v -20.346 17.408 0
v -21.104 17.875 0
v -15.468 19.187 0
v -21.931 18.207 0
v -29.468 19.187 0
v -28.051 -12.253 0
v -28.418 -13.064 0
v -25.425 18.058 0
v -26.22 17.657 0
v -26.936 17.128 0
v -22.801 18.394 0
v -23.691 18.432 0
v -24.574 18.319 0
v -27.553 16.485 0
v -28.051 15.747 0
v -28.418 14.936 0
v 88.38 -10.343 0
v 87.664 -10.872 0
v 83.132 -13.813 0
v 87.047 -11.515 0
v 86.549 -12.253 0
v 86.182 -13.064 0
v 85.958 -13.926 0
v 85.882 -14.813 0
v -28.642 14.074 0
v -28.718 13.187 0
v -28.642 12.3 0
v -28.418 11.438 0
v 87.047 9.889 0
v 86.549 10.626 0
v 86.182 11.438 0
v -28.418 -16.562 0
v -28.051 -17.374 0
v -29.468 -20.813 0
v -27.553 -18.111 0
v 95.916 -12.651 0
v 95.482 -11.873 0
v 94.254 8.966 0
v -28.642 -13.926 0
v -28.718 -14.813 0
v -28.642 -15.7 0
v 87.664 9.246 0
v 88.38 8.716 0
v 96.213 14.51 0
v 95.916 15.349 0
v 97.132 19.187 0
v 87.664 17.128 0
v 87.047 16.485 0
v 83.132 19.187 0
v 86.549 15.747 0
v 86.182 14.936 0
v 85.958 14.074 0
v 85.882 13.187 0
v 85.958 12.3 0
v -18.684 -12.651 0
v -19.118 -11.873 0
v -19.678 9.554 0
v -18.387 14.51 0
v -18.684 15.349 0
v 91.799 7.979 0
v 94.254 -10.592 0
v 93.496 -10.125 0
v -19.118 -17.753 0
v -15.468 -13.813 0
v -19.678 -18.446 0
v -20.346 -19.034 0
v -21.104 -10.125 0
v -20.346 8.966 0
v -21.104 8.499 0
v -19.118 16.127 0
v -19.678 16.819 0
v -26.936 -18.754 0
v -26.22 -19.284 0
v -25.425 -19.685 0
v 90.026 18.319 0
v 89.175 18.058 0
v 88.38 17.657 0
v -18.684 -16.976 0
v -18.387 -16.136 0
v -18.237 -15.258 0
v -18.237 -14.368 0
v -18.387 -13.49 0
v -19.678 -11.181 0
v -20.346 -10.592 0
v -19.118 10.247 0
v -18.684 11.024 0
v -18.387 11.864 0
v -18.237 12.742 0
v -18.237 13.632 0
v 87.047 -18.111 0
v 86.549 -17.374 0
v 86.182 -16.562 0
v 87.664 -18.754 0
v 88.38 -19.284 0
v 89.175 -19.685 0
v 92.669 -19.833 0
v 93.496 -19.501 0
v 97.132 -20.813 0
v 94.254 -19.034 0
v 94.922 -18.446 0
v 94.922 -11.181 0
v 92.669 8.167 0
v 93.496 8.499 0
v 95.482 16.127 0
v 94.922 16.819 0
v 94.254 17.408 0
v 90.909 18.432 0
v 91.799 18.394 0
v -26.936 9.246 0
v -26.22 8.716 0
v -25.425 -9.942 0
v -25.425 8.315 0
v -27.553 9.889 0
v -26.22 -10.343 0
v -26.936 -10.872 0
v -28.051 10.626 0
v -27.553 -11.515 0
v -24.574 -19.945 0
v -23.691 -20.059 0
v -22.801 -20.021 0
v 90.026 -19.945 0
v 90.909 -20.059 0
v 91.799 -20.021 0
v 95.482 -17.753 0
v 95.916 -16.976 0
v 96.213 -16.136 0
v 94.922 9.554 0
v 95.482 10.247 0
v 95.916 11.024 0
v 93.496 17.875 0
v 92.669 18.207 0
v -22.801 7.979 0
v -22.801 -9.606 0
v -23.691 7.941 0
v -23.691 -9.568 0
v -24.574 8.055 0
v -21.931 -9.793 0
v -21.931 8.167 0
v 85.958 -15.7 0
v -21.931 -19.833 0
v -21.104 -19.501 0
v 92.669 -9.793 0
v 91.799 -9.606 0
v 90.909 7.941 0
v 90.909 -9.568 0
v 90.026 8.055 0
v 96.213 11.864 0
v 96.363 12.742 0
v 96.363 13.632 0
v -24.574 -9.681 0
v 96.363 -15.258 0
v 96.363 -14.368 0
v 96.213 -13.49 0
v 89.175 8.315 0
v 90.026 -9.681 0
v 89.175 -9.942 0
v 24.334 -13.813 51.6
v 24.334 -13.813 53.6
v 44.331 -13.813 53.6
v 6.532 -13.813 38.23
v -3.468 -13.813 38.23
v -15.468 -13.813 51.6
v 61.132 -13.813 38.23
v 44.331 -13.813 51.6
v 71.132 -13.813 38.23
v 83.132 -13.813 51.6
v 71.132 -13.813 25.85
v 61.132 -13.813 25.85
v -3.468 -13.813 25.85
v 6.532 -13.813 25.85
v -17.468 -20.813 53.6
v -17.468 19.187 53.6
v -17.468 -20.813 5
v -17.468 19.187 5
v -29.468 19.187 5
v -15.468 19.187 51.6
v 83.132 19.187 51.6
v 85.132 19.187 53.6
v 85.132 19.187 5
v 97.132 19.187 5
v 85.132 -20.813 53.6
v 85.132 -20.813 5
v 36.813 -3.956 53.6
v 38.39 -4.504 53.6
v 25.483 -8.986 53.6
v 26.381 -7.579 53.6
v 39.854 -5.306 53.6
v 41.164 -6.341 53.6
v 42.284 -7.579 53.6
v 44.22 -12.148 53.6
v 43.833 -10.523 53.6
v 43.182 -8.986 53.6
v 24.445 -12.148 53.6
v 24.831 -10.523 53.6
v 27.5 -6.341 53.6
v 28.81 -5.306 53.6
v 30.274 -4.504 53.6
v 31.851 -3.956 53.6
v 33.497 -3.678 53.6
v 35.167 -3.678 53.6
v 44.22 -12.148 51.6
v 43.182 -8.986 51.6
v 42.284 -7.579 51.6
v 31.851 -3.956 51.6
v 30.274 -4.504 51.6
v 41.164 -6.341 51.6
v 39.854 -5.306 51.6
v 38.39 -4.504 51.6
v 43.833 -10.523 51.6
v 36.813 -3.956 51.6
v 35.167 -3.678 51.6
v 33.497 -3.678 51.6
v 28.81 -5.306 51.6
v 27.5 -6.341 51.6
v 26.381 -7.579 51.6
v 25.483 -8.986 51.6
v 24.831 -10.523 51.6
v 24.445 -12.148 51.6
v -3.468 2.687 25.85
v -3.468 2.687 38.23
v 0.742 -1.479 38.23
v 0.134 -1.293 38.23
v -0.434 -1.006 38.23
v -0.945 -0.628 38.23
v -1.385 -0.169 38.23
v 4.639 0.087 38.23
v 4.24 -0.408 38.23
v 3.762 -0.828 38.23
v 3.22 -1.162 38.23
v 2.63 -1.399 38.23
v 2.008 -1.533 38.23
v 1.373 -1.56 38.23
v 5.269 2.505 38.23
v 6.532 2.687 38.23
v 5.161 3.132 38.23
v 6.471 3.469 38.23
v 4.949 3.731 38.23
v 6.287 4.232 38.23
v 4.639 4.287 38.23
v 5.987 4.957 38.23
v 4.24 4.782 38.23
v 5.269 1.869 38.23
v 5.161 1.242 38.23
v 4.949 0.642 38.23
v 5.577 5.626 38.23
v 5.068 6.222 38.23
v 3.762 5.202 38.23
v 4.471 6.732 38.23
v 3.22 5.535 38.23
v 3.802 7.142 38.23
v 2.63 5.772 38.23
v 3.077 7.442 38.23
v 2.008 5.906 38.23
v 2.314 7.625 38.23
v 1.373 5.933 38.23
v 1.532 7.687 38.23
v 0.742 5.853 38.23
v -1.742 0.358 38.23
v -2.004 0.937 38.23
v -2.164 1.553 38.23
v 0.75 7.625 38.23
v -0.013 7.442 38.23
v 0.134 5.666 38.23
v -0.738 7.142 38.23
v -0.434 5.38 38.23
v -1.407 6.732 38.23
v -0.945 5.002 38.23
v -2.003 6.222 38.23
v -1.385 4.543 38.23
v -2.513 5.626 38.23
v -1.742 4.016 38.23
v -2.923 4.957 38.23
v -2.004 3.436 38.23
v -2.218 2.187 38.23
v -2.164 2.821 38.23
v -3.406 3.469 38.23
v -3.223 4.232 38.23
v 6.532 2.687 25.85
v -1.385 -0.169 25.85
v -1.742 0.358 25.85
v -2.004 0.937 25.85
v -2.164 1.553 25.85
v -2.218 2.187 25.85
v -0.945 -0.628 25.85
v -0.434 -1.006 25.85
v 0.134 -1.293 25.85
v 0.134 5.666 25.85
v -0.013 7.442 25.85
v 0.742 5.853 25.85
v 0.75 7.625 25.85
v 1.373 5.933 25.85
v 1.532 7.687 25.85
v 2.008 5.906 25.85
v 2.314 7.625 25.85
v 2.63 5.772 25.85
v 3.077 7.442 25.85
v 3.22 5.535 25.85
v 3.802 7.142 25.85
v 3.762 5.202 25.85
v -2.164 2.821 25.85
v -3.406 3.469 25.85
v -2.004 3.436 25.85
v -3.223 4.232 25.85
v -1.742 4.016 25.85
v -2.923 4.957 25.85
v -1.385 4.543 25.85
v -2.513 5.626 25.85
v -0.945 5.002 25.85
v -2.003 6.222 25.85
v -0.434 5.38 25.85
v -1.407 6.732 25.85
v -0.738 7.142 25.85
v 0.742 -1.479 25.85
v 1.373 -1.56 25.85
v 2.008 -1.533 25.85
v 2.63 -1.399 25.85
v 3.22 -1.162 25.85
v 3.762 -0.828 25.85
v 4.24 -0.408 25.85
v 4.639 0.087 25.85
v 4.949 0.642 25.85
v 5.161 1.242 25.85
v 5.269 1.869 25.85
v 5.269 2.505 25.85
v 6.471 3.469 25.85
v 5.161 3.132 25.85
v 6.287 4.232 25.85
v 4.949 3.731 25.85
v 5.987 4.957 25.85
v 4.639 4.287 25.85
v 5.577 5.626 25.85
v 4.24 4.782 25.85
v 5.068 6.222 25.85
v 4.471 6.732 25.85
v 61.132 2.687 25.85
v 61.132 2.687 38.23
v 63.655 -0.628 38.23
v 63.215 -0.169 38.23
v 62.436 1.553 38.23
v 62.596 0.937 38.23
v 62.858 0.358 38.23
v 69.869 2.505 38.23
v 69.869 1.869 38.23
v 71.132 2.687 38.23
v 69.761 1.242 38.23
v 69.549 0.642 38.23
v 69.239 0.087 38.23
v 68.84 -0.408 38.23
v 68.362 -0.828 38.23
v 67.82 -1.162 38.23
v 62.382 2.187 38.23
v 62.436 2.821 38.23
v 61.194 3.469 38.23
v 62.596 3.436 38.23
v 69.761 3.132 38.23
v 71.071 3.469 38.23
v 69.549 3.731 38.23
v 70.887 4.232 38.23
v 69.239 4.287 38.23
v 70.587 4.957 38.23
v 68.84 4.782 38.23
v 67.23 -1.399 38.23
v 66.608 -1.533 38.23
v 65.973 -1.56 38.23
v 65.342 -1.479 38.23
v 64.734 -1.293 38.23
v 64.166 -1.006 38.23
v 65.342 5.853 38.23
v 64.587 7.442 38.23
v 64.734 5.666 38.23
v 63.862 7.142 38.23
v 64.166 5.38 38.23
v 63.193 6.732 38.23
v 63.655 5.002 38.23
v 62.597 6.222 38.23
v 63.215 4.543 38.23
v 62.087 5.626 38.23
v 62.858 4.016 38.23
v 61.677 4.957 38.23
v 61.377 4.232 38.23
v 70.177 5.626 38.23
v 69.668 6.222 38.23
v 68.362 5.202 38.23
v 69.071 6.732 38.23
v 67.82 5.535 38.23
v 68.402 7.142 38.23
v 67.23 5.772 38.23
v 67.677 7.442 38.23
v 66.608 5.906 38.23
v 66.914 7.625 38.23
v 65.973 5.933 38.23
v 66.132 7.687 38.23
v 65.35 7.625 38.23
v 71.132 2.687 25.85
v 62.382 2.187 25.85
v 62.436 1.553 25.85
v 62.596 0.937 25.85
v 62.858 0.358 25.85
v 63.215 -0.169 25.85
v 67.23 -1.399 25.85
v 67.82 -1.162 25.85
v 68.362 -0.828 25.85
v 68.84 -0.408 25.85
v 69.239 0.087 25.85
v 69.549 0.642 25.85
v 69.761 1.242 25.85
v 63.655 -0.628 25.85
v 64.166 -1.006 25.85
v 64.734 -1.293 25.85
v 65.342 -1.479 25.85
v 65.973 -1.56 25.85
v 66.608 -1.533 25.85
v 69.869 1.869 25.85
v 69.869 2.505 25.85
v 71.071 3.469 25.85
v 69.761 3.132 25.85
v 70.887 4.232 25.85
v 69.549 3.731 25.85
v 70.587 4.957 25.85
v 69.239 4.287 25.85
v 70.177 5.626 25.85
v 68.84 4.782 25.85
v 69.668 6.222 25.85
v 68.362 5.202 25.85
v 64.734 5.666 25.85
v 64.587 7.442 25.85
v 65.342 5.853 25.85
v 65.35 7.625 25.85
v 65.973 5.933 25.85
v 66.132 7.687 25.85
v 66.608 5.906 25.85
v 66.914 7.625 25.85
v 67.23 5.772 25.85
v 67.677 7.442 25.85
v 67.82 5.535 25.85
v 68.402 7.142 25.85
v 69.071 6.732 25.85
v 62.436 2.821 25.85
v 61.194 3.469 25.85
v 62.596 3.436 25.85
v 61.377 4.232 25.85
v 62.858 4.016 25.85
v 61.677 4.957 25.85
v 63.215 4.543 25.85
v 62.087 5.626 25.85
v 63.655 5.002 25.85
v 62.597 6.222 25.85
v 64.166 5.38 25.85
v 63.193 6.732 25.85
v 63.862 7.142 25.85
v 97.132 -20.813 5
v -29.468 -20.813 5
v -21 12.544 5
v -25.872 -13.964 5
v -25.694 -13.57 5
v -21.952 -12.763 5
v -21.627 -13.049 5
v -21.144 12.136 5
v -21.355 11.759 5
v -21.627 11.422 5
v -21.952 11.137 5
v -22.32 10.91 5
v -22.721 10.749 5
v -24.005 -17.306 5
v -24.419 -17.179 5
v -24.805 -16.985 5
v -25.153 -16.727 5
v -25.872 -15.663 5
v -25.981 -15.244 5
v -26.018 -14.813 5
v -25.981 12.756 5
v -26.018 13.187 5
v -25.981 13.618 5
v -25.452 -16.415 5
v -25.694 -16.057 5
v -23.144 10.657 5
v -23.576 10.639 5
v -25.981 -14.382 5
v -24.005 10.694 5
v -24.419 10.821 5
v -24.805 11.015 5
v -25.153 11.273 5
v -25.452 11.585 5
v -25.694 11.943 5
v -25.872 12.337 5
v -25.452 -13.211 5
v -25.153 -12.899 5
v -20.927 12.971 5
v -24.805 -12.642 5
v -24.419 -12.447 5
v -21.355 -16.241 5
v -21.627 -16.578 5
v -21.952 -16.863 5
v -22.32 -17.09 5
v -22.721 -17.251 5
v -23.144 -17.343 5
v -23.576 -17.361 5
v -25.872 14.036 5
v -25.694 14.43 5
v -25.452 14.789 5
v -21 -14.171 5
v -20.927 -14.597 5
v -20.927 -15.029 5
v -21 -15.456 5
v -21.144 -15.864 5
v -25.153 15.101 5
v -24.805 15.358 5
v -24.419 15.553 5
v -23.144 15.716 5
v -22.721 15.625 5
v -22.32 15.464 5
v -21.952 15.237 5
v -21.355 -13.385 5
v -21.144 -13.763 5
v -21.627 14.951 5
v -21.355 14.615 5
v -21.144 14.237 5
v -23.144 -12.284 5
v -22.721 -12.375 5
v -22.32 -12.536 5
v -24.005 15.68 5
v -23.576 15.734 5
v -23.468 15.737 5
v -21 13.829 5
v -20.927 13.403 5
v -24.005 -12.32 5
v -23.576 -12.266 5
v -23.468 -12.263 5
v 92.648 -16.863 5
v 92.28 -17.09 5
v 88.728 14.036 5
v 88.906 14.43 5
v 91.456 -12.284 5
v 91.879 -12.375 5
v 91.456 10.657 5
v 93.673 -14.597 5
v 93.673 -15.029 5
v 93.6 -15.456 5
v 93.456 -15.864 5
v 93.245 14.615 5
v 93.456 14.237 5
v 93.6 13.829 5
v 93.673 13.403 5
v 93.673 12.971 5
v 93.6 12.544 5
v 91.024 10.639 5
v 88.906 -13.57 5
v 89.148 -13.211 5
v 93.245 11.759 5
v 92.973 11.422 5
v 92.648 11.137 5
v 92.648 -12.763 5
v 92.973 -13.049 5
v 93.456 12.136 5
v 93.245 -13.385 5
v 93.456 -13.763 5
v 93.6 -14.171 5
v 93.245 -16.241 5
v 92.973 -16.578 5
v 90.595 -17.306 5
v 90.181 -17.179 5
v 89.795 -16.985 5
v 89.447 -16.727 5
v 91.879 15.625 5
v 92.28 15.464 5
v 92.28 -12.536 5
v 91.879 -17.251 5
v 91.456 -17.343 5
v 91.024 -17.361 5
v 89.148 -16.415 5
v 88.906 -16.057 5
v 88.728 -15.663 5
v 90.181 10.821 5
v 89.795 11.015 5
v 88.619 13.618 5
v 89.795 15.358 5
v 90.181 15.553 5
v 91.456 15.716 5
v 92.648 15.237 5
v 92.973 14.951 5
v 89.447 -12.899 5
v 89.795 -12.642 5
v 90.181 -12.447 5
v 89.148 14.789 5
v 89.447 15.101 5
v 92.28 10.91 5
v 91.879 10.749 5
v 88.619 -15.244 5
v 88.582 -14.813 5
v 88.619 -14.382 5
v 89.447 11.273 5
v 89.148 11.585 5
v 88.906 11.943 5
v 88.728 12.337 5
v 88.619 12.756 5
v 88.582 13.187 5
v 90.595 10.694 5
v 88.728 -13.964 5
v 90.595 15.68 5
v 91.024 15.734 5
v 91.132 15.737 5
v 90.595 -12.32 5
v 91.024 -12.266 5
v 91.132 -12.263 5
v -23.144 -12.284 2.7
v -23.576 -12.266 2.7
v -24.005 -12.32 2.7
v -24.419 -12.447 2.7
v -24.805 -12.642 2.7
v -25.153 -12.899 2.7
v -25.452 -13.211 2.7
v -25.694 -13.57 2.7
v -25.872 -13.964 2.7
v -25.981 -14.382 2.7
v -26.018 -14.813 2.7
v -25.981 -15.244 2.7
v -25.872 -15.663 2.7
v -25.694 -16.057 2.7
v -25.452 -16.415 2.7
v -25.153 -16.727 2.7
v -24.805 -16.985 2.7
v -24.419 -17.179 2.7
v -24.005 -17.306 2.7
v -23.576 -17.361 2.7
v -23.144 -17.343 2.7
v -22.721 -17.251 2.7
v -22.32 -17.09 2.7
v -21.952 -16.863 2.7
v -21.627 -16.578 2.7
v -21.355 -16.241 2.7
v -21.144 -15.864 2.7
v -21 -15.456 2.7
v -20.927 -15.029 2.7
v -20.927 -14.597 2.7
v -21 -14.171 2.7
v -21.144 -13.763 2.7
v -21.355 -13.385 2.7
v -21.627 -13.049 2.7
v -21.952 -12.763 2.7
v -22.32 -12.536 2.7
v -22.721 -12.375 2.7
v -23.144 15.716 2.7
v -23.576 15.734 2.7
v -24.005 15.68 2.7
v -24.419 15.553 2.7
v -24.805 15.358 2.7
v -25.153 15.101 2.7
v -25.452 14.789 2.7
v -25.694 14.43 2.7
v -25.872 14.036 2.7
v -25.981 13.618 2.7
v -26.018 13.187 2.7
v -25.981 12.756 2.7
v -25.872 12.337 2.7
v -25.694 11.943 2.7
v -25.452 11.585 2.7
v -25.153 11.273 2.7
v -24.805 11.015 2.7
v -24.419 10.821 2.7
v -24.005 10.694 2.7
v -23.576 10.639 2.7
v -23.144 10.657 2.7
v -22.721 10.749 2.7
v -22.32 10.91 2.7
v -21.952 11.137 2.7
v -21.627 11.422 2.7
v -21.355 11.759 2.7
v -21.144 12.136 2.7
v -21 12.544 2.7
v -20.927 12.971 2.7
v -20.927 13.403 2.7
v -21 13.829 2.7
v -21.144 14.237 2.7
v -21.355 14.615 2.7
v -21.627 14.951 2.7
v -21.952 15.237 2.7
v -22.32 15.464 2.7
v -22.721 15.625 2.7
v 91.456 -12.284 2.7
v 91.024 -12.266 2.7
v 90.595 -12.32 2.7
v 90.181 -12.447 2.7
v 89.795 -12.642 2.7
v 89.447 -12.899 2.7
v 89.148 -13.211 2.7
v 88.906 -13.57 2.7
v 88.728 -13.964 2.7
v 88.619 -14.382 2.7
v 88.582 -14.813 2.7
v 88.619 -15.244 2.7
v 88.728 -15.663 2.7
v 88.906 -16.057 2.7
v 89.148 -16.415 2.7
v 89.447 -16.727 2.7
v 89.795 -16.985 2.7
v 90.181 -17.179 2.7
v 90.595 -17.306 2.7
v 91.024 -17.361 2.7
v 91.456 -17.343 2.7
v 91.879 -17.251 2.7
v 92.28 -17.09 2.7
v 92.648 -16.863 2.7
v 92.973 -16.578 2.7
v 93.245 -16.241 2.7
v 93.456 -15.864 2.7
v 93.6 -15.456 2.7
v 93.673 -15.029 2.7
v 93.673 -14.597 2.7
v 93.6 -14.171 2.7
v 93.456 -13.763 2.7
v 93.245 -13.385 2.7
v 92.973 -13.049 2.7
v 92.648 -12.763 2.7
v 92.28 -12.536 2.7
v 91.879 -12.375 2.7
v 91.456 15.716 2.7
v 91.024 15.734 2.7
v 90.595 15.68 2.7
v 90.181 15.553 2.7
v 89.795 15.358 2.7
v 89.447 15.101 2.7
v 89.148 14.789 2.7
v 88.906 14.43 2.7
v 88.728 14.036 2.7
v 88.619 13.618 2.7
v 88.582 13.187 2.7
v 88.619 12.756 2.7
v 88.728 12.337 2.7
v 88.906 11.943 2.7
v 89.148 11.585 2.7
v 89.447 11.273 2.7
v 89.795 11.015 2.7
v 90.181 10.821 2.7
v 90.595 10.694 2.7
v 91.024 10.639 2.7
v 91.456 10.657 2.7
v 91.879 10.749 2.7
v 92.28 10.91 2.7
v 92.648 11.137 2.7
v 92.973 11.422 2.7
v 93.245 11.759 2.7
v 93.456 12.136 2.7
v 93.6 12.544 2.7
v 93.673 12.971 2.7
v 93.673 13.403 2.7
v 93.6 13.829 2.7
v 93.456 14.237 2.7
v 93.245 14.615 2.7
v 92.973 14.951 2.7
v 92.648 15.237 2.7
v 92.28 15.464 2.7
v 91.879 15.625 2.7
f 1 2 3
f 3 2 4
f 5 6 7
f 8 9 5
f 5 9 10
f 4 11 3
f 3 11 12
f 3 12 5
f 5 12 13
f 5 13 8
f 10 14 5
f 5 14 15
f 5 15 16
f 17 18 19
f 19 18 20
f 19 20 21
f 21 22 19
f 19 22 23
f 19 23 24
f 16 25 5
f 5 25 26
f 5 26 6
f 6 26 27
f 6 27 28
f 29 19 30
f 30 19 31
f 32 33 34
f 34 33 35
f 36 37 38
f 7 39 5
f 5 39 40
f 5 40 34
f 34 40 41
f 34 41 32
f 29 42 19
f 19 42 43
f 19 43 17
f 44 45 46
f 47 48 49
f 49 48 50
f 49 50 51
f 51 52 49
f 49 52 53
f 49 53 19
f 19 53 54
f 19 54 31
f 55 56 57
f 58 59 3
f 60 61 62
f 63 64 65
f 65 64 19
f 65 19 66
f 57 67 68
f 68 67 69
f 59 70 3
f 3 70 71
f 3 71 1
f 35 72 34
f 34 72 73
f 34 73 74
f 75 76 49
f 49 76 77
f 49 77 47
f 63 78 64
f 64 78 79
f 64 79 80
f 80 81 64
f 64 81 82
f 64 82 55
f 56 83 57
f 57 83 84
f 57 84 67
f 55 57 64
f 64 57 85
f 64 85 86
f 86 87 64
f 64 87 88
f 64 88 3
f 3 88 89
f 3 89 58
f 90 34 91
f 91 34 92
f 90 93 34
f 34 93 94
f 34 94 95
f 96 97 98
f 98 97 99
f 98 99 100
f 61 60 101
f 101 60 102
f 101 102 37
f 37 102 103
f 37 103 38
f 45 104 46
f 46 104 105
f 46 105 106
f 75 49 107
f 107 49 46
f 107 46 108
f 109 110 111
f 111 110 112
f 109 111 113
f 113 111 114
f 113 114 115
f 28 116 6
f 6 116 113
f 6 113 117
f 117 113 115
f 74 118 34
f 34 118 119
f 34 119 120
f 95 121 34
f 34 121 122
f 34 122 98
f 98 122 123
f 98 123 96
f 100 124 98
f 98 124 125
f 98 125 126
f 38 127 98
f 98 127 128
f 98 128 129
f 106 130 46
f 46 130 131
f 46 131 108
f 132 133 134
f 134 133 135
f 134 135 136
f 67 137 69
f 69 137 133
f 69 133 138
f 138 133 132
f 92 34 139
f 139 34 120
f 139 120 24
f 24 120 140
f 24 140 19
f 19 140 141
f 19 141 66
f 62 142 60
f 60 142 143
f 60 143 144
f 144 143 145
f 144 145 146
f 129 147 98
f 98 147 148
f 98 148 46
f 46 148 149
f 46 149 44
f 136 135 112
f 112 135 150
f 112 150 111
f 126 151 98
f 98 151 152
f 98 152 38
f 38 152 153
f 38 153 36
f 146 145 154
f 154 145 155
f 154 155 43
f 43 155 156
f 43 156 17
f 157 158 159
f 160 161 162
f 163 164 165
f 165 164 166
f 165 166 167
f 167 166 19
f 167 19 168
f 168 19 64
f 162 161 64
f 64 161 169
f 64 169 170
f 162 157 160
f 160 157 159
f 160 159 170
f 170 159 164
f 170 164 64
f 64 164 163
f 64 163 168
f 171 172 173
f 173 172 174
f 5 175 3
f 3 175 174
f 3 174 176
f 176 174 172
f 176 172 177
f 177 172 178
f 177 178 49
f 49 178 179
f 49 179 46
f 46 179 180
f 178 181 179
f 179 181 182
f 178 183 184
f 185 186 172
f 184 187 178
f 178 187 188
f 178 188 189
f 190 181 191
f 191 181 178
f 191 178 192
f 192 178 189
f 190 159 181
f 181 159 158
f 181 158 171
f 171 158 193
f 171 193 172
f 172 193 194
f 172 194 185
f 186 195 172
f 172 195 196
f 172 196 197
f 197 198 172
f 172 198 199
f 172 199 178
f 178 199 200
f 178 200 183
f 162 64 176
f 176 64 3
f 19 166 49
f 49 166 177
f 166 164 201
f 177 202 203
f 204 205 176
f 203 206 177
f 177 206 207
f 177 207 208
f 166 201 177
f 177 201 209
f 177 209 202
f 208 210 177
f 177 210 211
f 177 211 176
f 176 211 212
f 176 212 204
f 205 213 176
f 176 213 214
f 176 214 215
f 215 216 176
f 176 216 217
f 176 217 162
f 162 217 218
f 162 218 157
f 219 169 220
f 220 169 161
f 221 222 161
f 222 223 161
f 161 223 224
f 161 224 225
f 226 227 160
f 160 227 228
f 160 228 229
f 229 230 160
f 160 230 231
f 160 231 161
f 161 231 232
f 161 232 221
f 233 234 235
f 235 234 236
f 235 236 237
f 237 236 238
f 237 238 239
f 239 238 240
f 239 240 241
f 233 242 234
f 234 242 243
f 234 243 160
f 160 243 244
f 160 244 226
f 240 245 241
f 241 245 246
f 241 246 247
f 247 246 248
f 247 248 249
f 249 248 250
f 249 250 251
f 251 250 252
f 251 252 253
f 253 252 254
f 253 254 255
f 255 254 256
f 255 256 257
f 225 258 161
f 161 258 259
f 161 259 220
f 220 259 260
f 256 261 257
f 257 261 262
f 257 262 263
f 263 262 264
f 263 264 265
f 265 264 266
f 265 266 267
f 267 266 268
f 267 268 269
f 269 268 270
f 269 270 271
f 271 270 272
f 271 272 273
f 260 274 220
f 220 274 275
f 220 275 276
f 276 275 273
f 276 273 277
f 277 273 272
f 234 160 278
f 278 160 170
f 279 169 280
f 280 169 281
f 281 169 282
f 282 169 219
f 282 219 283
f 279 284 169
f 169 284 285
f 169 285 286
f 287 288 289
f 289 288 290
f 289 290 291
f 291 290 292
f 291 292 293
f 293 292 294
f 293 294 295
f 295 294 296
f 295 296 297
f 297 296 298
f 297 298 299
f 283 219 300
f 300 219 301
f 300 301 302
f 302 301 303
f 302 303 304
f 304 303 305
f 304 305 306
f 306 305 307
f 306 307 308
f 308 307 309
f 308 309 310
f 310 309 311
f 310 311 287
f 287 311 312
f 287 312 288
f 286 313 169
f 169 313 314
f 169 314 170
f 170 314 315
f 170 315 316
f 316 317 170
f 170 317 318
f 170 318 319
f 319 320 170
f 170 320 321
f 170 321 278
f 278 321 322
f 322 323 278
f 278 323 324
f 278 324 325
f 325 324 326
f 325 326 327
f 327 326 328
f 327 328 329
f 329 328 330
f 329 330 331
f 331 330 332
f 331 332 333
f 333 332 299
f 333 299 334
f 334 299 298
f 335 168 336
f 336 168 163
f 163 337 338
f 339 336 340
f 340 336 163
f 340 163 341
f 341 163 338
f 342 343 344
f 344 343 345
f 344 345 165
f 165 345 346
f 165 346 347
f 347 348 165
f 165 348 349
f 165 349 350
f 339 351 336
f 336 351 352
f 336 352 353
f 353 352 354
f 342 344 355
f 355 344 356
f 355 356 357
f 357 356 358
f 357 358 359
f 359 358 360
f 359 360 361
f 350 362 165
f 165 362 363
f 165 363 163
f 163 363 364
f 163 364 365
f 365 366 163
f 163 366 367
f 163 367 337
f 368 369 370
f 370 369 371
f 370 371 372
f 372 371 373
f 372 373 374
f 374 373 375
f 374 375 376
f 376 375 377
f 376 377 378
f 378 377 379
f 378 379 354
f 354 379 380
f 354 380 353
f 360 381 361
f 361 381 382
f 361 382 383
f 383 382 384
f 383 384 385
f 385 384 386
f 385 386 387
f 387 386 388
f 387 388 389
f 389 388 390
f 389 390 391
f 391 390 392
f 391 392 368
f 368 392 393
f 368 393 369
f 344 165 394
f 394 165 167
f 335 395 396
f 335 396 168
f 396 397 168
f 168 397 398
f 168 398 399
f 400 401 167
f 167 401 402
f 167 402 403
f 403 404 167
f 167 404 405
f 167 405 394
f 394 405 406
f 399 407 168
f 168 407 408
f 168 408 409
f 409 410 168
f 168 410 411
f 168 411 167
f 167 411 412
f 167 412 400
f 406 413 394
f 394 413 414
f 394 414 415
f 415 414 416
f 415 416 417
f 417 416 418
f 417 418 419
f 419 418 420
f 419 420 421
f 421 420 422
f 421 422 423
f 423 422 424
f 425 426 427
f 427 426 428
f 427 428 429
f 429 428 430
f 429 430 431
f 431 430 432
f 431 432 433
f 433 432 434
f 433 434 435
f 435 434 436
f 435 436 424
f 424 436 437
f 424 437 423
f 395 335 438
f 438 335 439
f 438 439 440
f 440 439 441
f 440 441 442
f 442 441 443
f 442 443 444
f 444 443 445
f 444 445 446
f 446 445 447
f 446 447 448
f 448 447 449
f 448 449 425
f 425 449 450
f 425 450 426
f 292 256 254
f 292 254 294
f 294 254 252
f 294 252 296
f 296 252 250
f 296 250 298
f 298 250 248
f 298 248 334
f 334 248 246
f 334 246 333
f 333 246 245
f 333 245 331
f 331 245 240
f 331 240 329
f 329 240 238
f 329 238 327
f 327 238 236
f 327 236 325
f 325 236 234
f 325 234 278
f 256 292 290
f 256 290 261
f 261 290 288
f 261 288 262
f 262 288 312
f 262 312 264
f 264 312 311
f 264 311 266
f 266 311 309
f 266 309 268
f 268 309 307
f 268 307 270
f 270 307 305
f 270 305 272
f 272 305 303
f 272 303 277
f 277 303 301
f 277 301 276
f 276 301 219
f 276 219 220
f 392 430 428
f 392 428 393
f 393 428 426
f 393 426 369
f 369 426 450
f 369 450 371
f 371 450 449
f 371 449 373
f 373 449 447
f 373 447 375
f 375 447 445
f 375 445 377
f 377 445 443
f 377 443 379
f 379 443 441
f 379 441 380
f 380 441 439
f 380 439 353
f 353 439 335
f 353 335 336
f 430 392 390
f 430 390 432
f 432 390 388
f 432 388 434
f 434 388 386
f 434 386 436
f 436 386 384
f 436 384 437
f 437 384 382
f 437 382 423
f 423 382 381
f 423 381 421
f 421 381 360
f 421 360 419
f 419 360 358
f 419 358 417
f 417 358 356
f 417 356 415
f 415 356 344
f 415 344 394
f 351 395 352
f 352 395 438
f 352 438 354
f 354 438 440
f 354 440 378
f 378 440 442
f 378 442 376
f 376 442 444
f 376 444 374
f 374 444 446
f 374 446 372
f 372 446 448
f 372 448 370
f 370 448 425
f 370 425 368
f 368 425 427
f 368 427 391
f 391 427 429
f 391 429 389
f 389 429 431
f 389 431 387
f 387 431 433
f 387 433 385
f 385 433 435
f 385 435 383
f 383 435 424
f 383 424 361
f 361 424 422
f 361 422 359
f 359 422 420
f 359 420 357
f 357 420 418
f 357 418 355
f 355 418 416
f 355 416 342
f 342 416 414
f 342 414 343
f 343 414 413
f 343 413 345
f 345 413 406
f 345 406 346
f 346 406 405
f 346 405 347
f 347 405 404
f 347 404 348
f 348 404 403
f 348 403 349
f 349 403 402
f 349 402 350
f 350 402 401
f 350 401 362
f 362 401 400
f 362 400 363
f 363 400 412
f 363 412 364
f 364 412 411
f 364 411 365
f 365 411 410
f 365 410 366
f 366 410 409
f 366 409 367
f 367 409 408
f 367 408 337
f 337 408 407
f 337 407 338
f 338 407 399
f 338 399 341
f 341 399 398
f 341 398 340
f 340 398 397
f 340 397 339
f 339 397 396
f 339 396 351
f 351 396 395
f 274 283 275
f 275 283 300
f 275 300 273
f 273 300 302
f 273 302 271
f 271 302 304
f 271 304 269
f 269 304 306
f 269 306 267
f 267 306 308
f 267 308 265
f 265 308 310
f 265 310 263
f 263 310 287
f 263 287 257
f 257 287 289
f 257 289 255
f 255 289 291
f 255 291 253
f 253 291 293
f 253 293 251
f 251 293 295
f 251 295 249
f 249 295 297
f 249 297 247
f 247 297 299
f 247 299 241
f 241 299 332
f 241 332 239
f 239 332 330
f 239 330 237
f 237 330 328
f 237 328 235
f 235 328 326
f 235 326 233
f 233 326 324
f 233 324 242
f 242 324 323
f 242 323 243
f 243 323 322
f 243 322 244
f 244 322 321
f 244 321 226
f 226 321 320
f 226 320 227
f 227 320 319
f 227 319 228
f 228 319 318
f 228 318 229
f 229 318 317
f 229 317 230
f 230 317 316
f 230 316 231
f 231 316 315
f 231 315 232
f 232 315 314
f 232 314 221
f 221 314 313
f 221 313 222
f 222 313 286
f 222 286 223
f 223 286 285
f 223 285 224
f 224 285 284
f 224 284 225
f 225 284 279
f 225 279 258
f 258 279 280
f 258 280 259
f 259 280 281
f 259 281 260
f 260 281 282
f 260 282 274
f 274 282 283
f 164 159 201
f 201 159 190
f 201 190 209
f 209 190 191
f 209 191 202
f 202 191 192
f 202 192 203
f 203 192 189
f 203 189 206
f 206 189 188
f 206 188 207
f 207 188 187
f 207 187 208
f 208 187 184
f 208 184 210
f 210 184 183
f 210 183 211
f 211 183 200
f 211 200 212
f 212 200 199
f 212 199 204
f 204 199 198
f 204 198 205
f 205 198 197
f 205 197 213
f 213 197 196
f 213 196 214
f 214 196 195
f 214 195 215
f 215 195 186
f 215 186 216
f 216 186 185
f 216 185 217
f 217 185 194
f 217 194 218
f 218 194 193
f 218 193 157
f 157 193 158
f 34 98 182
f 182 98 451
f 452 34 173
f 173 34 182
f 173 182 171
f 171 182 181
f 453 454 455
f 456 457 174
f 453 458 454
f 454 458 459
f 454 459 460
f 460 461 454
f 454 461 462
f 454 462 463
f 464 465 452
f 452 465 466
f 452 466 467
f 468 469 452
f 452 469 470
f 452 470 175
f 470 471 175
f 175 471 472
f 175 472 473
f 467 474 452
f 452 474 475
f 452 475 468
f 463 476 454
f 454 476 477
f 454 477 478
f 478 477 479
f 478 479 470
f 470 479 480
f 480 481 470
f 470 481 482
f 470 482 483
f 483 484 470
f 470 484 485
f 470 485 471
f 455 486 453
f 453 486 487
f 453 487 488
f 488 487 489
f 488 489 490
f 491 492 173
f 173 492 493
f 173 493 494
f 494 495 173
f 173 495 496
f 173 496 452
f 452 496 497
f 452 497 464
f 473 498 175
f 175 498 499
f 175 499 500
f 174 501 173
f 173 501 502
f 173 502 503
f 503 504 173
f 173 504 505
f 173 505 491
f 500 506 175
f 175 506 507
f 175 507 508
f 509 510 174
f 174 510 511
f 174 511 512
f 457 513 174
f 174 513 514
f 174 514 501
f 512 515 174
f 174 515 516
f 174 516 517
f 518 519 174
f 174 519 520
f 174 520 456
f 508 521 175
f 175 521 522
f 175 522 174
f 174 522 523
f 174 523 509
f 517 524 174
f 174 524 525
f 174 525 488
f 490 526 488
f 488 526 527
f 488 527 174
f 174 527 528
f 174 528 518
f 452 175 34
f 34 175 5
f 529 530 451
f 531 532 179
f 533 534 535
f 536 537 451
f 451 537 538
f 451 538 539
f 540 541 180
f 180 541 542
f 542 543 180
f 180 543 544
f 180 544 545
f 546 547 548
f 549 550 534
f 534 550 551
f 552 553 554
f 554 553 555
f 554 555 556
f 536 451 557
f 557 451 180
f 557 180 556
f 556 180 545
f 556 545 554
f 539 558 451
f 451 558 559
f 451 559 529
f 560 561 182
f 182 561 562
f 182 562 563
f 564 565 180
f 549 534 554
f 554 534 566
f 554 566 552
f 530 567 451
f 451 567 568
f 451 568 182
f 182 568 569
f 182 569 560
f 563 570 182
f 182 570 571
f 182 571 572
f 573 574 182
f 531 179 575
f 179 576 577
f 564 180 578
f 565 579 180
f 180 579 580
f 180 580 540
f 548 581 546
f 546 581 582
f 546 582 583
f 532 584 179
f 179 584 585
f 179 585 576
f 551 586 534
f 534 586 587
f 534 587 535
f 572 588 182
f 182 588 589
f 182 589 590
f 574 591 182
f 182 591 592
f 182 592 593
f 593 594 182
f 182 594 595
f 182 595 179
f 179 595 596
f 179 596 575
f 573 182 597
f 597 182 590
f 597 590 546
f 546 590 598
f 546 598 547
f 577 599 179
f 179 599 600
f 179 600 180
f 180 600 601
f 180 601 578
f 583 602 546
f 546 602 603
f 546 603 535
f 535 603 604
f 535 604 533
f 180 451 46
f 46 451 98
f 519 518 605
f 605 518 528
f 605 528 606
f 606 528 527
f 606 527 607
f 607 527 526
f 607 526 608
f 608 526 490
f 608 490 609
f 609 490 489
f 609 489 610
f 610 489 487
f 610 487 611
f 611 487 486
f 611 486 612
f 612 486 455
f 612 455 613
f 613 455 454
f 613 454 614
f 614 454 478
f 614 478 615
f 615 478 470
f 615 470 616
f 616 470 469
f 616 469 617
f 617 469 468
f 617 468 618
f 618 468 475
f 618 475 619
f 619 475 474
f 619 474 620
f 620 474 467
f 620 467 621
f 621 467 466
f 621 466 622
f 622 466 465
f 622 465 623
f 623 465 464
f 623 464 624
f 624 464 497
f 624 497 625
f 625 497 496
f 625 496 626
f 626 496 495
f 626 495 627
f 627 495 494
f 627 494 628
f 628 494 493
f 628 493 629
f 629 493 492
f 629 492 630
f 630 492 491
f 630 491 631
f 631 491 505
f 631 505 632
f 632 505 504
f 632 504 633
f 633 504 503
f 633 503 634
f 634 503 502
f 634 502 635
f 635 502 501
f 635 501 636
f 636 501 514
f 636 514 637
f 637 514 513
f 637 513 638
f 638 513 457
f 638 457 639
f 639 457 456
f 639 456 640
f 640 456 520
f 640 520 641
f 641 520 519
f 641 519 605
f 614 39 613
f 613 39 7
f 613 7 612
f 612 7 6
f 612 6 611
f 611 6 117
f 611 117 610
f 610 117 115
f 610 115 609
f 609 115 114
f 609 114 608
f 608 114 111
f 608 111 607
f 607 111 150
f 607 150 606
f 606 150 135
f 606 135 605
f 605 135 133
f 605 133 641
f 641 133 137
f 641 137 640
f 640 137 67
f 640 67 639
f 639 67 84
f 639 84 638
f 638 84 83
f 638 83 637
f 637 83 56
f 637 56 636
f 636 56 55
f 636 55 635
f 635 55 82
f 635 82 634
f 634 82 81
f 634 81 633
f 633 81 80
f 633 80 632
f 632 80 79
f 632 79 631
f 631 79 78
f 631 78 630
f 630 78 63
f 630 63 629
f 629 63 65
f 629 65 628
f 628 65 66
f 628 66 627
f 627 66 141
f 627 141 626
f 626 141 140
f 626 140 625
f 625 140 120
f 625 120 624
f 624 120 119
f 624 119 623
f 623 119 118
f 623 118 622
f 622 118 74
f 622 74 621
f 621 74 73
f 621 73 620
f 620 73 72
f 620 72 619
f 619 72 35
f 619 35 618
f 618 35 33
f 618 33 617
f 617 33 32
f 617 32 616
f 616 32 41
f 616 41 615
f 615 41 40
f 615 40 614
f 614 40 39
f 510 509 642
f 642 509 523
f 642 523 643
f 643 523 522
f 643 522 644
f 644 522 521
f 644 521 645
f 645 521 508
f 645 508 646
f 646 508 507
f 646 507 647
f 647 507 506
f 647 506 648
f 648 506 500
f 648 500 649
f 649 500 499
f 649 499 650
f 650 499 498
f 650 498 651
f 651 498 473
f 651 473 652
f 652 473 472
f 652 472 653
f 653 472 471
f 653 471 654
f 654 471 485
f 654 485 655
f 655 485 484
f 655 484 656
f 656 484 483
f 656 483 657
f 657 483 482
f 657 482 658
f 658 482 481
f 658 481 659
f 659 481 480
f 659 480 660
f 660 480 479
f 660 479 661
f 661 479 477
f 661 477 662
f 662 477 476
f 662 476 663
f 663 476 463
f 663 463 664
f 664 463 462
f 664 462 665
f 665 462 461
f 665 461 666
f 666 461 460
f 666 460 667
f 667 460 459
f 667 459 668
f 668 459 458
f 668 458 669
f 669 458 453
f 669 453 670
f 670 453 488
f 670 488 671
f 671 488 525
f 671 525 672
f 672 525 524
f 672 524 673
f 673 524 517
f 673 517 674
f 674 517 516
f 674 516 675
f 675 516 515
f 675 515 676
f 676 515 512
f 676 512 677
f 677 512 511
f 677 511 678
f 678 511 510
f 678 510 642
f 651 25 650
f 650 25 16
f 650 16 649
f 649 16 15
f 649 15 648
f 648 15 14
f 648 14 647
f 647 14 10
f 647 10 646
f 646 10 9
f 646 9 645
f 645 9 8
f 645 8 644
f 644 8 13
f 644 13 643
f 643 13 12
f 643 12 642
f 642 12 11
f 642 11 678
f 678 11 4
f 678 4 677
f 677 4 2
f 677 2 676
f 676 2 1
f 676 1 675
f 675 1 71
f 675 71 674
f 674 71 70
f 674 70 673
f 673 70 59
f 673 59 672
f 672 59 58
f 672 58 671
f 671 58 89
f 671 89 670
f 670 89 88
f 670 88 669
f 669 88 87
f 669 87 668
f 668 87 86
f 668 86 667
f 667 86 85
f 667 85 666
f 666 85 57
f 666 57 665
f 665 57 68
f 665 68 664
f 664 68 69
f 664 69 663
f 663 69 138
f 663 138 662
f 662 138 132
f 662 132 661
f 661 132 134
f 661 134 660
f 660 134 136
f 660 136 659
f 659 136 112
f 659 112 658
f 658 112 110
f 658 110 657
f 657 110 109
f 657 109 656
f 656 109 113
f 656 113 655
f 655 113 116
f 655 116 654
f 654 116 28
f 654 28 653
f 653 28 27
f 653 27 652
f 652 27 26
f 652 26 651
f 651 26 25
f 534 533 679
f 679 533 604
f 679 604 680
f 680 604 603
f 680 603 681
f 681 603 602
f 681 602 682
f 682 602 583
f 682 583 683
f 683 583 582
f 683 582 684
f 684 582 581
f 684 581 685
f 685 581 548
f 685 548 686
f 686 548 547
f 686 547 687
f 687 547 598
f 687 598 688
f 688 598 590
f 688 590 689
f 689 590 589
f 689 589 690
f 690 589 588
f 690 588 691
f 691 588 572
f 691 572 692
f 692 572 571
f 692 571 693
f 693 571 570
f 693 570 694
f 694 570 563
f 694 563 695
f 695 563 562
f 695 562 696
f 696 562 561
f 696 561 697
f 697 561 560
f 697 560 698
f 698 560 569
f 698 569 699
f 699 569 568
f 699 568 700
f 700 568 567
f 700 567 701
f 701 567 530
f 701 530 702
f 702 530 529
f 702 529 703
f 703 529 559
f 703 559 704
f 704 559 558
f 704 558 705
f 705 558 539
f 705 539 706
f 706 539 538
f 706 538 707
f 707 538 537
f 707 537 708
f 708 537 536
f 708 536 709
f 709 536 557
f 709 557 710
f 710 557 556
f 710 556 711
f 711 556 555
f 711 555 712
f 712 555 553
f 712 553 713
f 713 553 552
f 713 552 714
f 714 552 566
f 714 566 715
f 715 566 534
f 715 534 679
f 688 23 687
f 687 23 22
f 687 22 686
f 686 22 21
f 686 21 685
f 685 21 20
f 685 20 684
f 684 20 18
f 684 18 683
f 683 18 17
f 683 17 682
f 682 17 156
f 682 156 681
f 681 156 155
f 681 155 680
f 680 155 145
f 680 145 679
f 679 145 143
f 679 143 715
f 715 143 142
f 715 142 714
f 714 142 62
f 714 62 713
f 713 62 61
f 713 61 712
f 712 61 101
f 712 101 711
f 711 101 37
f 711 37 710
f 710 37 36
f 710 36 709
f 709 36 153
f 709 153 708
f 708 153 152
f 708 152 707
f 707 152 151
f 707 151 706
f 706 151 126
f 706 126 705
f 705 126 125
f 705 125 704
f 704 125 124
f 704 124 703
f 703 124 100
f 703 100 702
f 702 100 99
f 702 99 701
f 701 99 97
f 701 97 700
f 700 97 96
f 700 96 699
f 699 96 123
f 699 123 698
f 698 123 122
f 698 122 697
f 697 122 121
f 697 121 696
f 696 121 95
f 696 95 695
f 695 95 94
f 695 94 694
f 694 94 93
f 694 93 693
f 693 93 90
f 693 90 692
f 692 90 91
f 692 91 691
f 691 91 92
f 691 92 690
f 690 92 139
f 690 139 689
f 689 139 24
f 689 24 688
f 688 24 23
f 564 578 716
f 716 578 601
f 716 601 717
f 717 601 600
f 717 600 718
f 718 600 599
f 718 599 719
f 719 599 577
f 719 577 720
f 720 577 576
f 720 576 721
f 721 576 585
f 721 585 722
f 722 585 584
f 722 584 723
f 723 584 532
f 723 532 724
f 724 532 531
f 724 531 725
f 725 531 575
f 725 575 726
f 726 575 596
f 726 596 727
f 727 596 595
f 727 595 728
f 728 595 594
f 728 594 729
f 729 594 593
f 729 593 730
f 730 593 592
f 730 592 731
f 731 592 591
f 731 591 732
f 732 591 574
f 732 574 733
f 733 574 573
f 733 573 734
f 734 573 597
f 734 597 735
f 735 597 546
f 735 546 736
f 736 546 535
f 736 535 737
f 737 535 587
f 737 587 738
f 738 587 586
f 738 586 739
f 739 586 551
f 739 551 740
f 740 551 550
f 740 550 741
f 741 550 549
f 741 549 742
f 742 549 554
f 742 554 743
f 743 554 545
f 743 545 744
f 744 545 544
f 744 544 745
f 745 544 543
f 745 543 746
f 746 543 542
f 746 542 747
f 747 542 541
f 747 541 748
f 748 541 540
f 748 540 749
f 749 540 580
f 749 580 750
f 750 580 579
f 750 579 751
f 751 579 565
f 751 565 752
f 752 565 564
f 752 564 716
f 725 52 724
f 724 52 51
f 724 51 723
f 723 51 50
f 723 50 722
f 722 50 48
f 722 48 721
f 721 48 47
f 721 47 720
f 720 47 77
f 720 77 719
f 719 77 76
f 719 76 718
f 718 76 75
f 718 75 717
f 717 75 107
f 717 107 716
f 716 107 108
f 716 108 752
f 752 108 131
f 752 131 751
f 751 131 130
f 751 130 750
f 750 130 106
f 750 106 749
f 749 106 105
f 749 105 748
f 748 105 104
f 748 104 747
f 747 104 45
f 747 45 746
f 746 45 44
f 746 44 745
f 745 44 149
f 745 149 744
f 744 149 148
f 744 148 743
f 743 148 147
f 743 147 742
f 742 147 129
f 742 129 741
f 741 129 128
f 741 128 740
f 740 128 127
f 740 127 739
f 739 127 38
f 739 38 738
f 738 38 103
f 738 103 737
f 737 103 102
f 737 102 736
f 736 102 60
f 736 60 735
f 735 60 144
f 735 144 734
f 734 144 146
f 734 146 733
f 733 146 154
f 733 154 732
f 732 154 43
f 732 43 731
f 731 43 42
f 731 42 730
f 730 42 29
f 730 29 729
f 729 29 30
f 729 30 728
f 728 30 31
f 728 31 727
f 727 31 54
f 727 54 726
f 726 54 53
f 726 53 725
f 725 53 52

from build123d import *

# Parameters (mm, degrees)
BOSS_EXTRU_1_DEPTH                                = 53.6
BOSS_EXTRU_1_DEPTH_BACK                           = 0.0001
ESQUISSE1_W                                       = 102.6
ESQUISSE1_H                                       = 35
ESQUISSE4_W                                       = 98.6
ESQUISSE4_H                                       = 51.6
ENL_V_MAT_EXTRU_2_DEPTH                           = 33
ESQUISSE9_W                                       = 10
ESQUISSE9_H                                       = 12.38
BOSS_EXTRU_3_DEPTH                                = 21.5
CONG_1_R                                          = 5
ESQUISSE10_R                                      = 3.75
ENL_V_MAT_EXTRU_4_DEPTH                           = 15
ENL_V_MAT_EXTRU_5_DEPTH                           = 2.1
ESQUISSE19_W                                      = 102.6
ESQUISSE19_H                                      = 53.6001
BOSS_EXTRU_4_DEPTH                                = 5
ESQUISSE21_W                                      = 5
ESQUISSE21_H                                      = 40
BOSS_EXTRU_5_DEPTH                                = 12
ESQUISSE22_W                                      = 5
ESQUISSE22_H                                      = 40
BOSS_EXTRU_6_DEPTH                                = 12
FRAISAGE_POUR_VIS_T_TE_FRAIS_E_BOMB_E_D           = 5.09999996
FRAISAGE_POUR_VIS_T_TE_FRAIS_E_BOMB_E_CSINK_D     = 10.500000082
FRAISAGE_POUR_VIS_T_TE_FRAIS_E_BOMB_E_CSINK_ANGLE = 90


with BuildPart() as part:
    # Esquisse1 → Boss.-Extru.1 (new, two sides: drawn at the far end of the back side and taken through both)
    with BuildSketch(Plane.XY.offset(-BOSS_EXTRU_1_DEPTH_BACK)):
        with Locations((33.832170394, 1.686746988)):
            Rectangle(ESQUISSE1_W, ESQUISSE1_H)
    extrude(amount=BOSS_EXTRU_1_DEPTH + BOSS_EXTRU_1_DEPTH_BACK)

    # Esquisse4 → Enlèv. mat.-Extru.2 (cut)
    with BuildSketch(Plane(origin=(0, 19.186746988, 0), x_dir=(1, 0, 0), z_dir=(0, 1, 0))):
        with Locations((33.832170394, -25.7999)):
            Rectangle(ESQUISSE4_W, ESQUISSE4_H)
    extrude(amount=-ENL_V_MAT_EXTRU_2_DEPTH, mode=Mode.SUBTRACT)

    # Esquisse9 → Boss.-Extru.3 (add)
    with BuildSketch(Plane(origin=(0, -13.813253012, 0), x_dir=(1, 0, 0), z_dir=(0, 1, 0))):
        with Locations((1.532170394, -32.0399)):
            Rectangle(ESQUISSE9_W, ESQUISSE9_H)
        with Locations((66.132170394, -32.0399)):
            Rectangle(ESQUISSE9_W, ESQUISSE9_H)
    extrude(amount=BOSS_EXTRU_3_DEPTH)

    # Congé1
    cong_1_edges = [part.edges().sort_by_distance(p)[0] for p in [
        (-3.467829606, 7.686746988, 32.0399),
        (6.532170394, 7.686746988, 32.0399),
        (71.132170394, 7.686746988, 32.0399),
        (61.132170394, 7.686746988, 32.0399),
    ]]
    fillet(cong_1_edges, radius=CONG_1_R - 0.0001)  # a hair under: the kernel refuses the full size

    # Esquisse10 → Enlèv. mat.-Extru.4 (cut)
    with BuildSketch(Plane(origin=(0, 0, 25.8499), x_dir=(-1, 0, 0), z_dir=(0, 0, -1))):
        with Locations((-66.132170394, 2.186746988)):
            Circle(ESQUISSE10_R)
        with Locations((-1.532170394, 2.186746988)):
            Circle(ESQUISSE10_R)
    extrude(amount=-ENL_V_MAT_EXTRU_4_DEPTH, mode=Mode.SUBTRACT)

    # Esquisse18 → Enlèv. mat.-Extru.5 (cut)
    with BuildSketch(Plane.XY.offset(53.6)):
        with BuildLine():
            Line((24.333519225, -13.813253012), (44.330821563, -13.813253012))
            ThreePointArc((44.330821563, -13.813253012), (34.332170394, -3.643205178), (24.333519225, -13.813253012))
        make_face()
    extrude(amount=-ENL_V_MAT_EXTRU_5_DEPTH, mode=Mode.SUBTRACT)

    # Esquisse19 → Boss.-Extru.4 (add)
    with BuildSketch(Plane.XZ.offset(15.813253012)):
        with Locations((33.832170394, 26.79995)):
            Rectangle(ESQUISSE19_W, ESQUISSE19_H)
    extrude(amount=BOSS_EXTRU_4_DEPTH)

    # Esquisse21 → Boss.-Extru.5 (add)
    with BuildSketch(Plane.ZY.offset(17.467829606)):
        with Locations((2.4999, -0.813253012)):
            Rectangle(ESQUISSE21_W, ESQUISSE21_H)
    extrude(amount=BOSS_EXTRU_5_DEPTH)

    # Esquisse22 → Boss.-Extru.6 (add)
    with BuildSketch(Plane(origin=(85.132170394, 0, 0), x_dir=(0, 0, -1), z_dir=(1, 0, 0))):
        with Locations((-2.4999, -0.813253012)):
            Rectangle(ESQUISSE22_W, ESQUISSE22_H)
    extrude(amount=BOSS_EXTRU_6_DEPTH)

    # Fraisage pour vis à tête fraisée bombée #51 (through all)
    with Locations(Plane(origin=(91.132170394, 13.186746988, -0.0001), x_dir=(-1, 0, 0), z_dir=(0, 0, -1))):
        with Locations((0, 0), (0, -28), (114.6, 0), (114.6, -28)):
            CounterSinkHole(FRAISAGE_POUR_VIS_T_TE_FRAIS_E_BOMB_E_D / 2, FRAISAGE_POUR_VIS_T_TE_FRAIS_E_BOMB_E_CSINK_D / 2, counter_sink_angle=FRAISAGE_POUR_VIS_T_TE_FRAIS_E_BOMB_E_CSINK_ANGLE)


solid = part.part
